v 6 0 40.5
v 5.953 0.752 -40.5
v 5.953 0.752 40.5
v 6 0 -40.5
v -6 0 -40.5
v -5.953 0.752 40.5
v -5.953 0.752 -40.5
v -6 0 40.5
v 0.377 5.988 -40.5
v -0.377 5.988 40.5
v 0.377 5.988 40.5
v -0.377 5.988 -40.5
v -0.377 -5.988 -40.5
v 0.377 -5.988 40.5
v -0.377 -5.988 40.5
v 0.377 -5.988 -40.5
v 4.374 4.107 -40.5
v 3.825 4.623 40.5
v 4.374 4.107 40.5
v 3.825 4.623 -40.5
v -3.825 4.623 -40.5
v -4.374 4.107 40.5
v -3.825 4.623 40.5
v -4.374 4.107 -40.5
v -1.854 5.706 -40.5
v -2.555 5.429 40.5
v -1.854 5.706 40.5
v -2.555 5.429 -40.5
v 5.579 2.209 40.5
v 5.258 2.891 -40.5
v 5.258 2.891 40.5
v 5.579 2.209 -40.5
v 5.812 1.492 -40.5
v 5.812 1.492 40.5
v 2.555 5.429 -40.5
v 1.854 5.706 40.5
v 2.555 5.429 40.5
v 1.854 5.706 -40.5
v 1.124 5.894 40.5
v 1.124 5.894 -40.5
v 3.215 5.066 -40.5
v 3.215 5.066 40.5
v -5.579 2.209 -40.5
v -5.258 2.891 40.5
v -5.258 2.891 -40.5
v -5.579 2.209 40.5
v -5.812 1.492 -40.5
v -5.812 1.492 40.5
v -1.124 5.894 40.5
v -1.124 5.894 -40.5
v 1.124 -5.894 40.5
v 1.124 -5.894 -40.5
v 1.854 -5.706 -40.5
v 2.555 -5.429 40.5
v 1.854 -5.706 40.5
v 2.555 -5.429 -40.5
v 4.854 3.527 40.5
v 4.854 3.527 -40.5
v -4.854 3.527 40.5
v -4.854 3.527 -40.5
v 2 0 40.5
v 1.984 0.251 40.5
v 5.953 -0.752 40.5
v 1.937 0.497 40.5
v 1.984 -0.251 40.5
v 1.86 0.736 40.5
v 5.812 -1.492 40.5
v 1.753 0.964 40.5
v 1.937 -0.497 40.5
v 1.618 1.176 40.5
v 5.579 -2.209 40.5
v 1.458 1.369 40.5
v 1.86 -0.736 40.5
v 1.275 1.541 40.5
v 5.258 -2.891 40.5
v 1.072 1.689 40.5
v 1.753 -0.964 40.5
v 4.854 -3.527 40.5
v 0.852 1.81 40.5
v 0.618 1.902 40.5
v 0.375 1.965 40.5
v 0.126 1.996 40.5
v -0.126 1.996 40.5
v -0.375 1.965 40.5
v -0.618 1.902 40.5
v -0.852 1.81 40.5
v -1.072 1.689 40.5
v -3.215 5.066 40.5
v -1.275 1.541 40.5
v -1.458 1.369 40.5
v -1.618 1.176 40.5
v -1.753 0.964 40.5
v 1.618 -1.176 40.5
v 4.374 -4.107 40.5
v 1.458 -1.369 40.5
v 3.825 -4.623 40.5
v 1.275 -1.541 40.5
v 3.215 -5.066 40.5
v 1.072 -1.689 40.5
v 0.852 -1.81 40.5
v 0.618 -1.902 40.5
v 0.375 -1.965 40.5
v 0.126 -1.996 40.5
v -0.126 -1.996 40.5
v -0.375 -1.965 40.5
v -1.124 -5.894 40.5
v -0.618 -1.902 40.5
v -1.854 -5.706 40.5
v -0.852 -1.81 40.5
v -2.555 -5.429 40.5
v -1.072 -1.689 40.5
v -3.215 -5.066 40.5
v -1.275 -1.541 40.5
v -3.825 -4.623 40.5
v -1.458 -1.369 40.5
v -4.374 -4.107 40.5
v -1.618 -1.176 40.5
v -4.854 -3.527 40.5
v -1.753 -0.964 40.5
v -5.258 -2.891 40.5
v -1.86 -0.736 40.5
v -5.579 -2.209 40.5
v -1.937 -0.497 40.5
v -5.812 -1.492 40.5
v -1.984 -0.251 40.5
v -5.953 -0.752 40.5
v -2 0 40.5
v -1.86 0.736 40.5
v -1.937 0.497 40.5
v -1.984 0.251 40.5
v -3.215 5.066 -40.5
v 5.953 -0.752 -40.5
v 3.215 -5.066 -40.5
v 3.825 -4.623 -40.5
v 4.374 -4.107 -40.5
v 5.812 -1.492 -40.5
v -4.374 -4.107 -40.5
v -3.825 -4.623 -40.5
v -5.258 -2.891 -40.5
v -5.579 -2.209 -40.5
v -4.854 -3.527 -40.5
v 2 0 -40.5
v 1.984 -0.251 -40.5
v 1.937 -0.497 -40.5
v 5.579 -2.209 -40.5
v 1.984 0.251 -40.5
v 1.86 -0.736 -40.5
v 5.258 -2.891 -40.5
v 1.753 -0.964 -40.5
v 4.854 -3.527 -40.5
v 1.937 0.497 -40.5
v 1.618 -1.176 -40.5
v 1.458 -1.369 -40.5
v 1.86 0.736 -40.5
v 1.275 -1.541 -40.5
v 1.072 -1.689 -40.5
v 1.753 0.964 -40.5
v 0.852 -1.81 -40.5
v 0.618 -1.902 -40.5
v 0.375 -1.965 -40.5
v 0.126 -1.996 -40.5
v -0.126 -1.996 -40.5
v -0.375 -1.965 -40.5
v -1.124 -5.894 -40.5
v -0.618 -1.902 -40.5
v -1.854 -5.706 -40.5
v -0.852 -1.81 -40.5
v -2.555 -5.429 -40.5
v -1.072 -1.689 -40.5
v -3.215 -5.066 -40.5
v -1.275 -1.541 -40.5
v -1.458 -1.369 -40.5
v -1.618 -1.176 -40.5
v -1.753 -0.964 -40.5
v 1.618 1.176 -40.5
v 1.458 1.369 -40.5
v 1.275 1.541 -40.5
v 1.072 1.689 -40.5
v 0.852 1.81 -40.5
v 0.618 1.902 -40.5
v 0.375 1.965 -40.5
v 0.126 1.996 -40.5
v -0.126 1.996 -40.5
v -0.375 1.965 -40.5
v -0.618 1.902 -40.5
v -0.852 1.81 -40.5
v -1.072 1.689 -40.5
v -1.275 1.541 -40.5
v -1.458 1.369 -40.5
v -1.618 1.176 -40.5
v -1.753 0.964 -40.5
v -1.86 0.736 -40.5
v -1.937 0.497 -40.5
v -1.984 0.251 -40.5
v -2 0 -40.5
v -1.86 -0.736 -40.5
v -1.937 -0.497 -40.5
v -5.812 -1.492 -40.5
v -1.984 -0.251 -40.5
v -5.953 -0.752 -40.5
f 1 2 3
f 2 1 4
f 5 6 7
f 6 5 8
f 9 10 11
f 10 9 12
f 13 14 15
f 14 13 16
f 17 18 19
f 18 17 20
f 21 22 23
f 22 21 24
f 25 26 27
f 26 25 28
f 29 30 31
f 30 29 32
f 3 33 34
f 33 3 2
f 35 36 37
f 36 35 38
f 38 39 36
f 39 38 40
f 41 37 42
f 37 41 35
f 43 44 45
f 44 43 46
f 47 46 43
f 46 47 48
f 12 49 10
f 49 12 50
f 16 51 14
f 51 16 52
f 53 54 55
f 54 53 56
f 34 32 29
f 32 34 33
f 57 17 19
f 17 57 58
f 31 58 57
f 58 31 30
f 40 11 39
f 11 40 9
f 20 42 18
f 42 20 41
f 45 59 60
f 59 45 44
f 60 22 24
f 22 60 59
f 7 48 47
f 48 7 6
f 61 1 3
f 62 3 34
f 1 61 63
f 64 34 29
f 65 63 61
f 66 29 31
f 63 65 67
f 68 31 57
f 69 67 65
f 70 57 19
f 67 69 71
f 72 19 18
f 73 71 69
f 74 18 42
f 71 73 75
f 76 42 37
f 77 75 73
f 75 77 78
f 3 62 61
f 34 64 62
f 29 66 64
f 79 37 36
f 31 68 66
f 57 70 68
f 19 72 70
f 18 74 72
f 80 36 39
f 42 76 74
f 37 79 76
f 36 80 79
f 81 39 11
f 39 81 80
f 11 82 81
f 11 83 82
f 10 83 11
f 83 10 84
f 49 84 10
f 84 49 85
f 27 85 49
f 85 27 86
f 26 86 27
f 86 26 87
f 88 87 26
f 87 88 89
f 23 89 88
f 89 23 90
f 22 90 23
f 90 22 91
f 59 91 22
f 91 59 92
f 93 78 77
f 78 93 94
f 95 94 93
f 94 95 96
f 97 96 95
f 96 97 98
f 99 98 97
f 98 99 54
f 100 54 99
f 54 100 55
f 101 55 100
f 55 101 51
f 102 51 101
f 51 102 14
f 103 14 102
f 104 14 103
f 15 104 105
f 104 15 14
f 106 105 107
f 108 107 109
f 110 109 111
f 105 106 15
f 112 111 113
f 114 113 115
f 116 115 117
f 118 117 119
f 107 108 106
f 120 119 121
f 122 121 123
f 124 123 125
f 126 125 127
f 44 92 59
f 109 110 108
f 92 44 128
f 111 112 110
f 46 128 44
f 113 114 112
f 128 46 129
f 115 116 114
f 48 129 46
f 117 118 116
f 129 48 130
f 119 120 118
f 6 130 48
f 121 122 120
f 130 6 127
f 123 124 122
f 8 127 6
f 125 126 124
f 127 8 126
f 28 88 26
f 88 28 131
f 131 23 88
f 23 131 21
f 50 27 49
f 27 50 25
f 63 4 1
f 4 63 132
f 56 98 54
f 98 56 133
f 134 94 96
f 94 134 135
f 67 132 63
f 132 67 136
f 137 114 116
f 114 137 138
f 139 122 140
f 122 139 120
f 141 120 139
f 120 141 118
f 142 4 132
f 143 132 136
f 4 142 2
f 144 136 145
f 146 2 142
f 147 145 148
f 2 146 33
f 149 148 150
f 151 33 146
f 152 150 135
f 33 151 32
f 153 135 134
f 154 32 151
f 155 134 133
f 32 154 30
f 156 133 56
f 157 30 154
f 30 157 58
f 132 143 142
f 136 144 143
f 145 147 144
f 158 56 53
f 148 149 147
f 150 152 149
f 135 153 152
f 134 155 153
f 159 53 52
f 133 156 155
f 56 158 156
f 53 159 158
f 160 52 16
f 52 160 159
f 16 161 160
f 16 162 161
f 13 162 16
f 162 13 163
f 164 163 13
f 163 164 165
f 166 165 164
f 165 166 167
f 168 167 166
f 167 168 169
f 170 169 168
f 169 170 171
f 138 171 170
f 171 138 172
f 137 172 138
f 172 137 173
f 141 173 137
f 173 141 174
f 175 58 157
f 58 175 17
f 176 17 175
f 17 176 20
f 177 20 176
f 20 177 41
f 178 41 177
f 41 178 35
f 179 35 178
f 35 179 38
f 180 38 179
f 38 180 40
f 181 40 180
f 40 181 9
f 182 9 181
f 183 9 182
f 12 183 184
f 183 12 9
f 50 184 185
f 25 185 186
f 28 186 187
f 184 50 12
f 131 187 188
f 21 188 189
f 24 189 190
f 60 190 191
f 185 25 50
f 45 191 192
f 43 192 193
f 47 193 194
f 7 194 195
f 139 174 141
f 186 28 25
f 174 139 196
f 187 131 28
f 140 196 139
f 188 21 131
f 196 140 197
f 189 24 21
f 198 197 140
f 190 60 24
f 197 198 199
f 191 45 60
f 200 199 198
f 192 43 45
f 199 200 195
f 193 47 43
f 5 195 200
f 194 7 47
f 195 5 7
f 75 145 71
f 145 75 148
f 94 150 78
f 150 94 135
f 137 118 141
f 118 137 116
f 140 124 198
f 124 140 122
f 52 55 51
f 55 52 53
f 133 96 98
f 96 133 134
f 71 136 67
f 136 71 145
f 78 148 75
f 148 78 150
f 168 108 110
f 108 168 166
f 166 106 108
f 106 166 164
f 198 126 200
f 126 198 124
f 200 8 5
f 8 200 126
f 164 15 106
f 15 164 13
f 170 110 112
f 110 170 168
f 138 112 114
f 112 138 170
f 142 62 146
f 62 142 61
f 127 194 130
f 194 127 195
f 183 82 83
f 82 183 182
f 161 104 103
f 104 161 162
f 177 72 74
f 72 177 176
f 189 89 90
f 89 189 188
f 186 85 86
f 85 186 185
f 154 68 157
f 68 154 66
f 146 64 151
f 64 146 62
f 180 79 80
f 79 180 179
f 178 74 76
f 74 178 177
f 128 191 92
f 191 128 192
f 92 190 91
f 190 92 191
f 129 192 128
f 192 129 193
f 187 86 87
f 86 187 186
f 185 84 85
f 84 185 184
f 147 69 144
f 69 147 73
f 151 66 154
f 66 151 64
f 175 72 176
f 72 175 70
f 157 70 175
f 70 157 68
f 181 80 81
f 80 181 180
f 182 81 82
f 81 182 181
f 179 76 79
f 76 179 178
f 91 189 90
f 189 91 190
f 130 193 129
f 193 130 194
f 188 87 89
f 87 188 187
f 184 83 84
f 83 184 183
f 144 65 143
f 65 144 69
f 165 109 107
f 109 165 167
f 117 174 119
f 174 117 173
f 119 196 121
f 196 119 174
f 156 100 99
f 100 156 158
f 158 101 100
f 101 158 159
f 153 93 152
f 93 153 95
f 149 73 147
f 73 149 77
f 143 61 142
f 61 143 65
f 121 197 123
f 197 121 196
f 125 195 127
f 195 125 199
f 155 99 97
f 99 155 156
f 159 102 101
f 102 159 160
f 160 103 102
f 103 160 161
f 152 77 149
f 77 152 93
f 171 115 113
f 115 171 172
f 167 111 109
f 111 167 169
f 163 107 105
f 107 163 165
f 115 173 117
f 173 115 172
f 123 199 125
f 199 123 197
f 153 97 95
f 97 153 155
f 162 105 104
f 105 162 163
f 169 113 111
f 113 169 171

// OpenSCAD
$fn = 50;


difference() {
	union() {
		translate(v = [0, 0, -40.5000000000]) {
			cylinder(h = 81, r = 6.0000000000);
		}
	}
	union() {
		translate(v = [0, 0, -100.0000000000]) {
			cylinder(h = 200, r = 2);
		}
	}
}
